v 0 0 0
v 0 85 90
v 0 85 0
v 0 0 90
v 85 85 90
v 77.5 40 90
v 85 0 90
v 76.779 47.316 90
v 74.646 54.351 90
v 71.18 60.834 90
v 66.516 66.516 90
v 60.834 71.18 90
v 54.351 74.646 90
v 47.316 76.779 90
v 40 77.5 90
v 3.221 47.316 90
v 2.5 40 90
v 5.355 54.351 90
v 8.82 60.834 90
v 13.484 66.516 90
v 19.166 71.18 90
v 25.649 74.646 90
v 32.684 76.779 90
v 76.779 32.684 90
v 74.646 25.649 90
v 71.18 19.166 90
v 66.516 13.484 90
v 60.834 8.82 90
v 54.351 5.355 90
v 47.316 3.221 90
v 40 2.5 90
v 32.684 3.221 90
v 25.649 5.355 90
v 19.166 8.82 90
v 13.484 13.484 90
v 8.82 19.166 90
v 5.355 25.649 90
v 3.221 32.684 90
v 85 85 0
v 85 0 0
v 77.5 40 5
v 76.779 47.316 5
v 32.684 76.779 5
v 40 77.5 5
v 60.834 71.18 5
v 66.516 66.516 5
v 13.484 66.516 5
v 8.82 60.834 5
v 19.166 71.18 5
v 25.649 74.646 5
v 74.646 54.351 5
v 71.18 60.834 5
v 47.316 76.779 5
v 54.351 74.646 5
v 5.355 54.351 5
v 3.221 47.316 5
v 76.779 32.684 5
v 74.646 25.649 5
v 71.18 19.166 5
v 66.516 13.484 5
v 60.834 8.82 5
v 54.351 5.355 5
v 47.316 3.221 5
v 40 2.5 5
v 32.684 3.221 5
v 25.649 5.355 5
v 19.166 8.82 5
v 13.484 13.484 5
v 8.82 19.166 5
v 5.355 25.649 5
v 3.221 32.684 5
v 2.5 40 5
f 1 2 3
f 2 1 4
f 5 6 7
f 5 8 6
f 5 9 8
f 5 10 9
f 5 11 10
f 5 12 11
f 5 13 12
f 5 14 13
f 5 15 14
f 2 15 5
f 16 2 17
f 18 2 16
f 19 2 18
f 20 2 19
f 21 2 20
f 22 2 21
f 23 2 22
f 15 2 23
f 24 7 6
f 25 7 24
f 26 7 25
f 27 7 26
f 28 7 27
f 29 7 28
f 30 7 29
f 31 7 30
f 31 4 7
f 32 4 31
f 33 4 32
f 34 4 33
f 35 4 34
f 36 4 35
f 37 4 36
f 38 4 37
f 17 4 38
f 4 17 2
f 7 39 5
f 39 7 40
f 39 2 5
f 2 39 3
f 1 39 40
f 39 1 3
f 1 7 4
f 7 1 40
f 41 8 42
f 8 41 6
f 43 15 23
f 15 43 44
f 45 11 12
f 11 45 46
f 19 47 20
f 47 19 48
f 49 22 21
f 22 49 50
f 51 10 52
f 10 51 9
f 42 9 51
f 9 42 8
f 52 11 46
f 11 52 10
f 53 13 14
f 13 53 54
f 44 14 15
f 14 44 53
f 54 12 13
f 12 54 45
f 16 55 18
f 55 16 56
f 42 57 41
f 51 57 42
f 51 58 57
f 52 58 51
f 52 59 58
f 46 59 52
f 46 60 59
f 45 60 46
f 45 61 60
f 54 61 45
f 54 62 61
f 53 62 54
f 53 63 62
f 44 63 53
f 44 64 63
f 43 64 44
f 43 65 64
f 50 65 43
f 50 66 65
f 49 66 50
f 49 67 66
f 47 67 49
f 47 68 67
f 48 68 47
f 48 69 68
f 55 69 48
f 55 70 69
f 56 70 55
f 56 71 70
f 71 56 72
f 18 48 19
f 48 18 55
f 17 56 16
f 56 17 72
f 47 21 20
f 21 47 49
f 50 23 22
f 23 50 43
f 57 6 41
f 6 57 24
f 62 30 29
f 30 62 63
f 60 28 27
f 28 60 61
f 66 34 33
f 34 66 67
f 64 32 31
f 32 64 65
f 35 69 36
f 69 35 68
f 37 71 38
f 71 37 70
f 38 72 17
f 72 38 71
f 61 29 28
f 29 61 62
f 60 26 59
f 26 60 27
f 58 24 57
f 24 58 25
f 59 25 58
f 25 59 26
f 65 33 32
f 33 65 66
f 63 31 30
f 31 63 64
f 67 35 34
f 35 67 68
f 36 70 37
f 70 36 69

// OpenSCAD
// glass of water 250 mL
// loadName: glass_250ml
// Auto-generated by labware_to_stl.py from Opentrons V2 labware definition

$fn = 32;

difference() {
    // ── Labware body ──────────────────────────────────────────────
    cube([85.0000, 85.0000, 90.0000]);

    // ── Well cutouts ──────────────────────────────────────────────
    // Well A1
    translate([40.0000, 40.0000, 5.0000])
        cylinder(h=86.0000, r=37.5000, $fn=$fn);
}
